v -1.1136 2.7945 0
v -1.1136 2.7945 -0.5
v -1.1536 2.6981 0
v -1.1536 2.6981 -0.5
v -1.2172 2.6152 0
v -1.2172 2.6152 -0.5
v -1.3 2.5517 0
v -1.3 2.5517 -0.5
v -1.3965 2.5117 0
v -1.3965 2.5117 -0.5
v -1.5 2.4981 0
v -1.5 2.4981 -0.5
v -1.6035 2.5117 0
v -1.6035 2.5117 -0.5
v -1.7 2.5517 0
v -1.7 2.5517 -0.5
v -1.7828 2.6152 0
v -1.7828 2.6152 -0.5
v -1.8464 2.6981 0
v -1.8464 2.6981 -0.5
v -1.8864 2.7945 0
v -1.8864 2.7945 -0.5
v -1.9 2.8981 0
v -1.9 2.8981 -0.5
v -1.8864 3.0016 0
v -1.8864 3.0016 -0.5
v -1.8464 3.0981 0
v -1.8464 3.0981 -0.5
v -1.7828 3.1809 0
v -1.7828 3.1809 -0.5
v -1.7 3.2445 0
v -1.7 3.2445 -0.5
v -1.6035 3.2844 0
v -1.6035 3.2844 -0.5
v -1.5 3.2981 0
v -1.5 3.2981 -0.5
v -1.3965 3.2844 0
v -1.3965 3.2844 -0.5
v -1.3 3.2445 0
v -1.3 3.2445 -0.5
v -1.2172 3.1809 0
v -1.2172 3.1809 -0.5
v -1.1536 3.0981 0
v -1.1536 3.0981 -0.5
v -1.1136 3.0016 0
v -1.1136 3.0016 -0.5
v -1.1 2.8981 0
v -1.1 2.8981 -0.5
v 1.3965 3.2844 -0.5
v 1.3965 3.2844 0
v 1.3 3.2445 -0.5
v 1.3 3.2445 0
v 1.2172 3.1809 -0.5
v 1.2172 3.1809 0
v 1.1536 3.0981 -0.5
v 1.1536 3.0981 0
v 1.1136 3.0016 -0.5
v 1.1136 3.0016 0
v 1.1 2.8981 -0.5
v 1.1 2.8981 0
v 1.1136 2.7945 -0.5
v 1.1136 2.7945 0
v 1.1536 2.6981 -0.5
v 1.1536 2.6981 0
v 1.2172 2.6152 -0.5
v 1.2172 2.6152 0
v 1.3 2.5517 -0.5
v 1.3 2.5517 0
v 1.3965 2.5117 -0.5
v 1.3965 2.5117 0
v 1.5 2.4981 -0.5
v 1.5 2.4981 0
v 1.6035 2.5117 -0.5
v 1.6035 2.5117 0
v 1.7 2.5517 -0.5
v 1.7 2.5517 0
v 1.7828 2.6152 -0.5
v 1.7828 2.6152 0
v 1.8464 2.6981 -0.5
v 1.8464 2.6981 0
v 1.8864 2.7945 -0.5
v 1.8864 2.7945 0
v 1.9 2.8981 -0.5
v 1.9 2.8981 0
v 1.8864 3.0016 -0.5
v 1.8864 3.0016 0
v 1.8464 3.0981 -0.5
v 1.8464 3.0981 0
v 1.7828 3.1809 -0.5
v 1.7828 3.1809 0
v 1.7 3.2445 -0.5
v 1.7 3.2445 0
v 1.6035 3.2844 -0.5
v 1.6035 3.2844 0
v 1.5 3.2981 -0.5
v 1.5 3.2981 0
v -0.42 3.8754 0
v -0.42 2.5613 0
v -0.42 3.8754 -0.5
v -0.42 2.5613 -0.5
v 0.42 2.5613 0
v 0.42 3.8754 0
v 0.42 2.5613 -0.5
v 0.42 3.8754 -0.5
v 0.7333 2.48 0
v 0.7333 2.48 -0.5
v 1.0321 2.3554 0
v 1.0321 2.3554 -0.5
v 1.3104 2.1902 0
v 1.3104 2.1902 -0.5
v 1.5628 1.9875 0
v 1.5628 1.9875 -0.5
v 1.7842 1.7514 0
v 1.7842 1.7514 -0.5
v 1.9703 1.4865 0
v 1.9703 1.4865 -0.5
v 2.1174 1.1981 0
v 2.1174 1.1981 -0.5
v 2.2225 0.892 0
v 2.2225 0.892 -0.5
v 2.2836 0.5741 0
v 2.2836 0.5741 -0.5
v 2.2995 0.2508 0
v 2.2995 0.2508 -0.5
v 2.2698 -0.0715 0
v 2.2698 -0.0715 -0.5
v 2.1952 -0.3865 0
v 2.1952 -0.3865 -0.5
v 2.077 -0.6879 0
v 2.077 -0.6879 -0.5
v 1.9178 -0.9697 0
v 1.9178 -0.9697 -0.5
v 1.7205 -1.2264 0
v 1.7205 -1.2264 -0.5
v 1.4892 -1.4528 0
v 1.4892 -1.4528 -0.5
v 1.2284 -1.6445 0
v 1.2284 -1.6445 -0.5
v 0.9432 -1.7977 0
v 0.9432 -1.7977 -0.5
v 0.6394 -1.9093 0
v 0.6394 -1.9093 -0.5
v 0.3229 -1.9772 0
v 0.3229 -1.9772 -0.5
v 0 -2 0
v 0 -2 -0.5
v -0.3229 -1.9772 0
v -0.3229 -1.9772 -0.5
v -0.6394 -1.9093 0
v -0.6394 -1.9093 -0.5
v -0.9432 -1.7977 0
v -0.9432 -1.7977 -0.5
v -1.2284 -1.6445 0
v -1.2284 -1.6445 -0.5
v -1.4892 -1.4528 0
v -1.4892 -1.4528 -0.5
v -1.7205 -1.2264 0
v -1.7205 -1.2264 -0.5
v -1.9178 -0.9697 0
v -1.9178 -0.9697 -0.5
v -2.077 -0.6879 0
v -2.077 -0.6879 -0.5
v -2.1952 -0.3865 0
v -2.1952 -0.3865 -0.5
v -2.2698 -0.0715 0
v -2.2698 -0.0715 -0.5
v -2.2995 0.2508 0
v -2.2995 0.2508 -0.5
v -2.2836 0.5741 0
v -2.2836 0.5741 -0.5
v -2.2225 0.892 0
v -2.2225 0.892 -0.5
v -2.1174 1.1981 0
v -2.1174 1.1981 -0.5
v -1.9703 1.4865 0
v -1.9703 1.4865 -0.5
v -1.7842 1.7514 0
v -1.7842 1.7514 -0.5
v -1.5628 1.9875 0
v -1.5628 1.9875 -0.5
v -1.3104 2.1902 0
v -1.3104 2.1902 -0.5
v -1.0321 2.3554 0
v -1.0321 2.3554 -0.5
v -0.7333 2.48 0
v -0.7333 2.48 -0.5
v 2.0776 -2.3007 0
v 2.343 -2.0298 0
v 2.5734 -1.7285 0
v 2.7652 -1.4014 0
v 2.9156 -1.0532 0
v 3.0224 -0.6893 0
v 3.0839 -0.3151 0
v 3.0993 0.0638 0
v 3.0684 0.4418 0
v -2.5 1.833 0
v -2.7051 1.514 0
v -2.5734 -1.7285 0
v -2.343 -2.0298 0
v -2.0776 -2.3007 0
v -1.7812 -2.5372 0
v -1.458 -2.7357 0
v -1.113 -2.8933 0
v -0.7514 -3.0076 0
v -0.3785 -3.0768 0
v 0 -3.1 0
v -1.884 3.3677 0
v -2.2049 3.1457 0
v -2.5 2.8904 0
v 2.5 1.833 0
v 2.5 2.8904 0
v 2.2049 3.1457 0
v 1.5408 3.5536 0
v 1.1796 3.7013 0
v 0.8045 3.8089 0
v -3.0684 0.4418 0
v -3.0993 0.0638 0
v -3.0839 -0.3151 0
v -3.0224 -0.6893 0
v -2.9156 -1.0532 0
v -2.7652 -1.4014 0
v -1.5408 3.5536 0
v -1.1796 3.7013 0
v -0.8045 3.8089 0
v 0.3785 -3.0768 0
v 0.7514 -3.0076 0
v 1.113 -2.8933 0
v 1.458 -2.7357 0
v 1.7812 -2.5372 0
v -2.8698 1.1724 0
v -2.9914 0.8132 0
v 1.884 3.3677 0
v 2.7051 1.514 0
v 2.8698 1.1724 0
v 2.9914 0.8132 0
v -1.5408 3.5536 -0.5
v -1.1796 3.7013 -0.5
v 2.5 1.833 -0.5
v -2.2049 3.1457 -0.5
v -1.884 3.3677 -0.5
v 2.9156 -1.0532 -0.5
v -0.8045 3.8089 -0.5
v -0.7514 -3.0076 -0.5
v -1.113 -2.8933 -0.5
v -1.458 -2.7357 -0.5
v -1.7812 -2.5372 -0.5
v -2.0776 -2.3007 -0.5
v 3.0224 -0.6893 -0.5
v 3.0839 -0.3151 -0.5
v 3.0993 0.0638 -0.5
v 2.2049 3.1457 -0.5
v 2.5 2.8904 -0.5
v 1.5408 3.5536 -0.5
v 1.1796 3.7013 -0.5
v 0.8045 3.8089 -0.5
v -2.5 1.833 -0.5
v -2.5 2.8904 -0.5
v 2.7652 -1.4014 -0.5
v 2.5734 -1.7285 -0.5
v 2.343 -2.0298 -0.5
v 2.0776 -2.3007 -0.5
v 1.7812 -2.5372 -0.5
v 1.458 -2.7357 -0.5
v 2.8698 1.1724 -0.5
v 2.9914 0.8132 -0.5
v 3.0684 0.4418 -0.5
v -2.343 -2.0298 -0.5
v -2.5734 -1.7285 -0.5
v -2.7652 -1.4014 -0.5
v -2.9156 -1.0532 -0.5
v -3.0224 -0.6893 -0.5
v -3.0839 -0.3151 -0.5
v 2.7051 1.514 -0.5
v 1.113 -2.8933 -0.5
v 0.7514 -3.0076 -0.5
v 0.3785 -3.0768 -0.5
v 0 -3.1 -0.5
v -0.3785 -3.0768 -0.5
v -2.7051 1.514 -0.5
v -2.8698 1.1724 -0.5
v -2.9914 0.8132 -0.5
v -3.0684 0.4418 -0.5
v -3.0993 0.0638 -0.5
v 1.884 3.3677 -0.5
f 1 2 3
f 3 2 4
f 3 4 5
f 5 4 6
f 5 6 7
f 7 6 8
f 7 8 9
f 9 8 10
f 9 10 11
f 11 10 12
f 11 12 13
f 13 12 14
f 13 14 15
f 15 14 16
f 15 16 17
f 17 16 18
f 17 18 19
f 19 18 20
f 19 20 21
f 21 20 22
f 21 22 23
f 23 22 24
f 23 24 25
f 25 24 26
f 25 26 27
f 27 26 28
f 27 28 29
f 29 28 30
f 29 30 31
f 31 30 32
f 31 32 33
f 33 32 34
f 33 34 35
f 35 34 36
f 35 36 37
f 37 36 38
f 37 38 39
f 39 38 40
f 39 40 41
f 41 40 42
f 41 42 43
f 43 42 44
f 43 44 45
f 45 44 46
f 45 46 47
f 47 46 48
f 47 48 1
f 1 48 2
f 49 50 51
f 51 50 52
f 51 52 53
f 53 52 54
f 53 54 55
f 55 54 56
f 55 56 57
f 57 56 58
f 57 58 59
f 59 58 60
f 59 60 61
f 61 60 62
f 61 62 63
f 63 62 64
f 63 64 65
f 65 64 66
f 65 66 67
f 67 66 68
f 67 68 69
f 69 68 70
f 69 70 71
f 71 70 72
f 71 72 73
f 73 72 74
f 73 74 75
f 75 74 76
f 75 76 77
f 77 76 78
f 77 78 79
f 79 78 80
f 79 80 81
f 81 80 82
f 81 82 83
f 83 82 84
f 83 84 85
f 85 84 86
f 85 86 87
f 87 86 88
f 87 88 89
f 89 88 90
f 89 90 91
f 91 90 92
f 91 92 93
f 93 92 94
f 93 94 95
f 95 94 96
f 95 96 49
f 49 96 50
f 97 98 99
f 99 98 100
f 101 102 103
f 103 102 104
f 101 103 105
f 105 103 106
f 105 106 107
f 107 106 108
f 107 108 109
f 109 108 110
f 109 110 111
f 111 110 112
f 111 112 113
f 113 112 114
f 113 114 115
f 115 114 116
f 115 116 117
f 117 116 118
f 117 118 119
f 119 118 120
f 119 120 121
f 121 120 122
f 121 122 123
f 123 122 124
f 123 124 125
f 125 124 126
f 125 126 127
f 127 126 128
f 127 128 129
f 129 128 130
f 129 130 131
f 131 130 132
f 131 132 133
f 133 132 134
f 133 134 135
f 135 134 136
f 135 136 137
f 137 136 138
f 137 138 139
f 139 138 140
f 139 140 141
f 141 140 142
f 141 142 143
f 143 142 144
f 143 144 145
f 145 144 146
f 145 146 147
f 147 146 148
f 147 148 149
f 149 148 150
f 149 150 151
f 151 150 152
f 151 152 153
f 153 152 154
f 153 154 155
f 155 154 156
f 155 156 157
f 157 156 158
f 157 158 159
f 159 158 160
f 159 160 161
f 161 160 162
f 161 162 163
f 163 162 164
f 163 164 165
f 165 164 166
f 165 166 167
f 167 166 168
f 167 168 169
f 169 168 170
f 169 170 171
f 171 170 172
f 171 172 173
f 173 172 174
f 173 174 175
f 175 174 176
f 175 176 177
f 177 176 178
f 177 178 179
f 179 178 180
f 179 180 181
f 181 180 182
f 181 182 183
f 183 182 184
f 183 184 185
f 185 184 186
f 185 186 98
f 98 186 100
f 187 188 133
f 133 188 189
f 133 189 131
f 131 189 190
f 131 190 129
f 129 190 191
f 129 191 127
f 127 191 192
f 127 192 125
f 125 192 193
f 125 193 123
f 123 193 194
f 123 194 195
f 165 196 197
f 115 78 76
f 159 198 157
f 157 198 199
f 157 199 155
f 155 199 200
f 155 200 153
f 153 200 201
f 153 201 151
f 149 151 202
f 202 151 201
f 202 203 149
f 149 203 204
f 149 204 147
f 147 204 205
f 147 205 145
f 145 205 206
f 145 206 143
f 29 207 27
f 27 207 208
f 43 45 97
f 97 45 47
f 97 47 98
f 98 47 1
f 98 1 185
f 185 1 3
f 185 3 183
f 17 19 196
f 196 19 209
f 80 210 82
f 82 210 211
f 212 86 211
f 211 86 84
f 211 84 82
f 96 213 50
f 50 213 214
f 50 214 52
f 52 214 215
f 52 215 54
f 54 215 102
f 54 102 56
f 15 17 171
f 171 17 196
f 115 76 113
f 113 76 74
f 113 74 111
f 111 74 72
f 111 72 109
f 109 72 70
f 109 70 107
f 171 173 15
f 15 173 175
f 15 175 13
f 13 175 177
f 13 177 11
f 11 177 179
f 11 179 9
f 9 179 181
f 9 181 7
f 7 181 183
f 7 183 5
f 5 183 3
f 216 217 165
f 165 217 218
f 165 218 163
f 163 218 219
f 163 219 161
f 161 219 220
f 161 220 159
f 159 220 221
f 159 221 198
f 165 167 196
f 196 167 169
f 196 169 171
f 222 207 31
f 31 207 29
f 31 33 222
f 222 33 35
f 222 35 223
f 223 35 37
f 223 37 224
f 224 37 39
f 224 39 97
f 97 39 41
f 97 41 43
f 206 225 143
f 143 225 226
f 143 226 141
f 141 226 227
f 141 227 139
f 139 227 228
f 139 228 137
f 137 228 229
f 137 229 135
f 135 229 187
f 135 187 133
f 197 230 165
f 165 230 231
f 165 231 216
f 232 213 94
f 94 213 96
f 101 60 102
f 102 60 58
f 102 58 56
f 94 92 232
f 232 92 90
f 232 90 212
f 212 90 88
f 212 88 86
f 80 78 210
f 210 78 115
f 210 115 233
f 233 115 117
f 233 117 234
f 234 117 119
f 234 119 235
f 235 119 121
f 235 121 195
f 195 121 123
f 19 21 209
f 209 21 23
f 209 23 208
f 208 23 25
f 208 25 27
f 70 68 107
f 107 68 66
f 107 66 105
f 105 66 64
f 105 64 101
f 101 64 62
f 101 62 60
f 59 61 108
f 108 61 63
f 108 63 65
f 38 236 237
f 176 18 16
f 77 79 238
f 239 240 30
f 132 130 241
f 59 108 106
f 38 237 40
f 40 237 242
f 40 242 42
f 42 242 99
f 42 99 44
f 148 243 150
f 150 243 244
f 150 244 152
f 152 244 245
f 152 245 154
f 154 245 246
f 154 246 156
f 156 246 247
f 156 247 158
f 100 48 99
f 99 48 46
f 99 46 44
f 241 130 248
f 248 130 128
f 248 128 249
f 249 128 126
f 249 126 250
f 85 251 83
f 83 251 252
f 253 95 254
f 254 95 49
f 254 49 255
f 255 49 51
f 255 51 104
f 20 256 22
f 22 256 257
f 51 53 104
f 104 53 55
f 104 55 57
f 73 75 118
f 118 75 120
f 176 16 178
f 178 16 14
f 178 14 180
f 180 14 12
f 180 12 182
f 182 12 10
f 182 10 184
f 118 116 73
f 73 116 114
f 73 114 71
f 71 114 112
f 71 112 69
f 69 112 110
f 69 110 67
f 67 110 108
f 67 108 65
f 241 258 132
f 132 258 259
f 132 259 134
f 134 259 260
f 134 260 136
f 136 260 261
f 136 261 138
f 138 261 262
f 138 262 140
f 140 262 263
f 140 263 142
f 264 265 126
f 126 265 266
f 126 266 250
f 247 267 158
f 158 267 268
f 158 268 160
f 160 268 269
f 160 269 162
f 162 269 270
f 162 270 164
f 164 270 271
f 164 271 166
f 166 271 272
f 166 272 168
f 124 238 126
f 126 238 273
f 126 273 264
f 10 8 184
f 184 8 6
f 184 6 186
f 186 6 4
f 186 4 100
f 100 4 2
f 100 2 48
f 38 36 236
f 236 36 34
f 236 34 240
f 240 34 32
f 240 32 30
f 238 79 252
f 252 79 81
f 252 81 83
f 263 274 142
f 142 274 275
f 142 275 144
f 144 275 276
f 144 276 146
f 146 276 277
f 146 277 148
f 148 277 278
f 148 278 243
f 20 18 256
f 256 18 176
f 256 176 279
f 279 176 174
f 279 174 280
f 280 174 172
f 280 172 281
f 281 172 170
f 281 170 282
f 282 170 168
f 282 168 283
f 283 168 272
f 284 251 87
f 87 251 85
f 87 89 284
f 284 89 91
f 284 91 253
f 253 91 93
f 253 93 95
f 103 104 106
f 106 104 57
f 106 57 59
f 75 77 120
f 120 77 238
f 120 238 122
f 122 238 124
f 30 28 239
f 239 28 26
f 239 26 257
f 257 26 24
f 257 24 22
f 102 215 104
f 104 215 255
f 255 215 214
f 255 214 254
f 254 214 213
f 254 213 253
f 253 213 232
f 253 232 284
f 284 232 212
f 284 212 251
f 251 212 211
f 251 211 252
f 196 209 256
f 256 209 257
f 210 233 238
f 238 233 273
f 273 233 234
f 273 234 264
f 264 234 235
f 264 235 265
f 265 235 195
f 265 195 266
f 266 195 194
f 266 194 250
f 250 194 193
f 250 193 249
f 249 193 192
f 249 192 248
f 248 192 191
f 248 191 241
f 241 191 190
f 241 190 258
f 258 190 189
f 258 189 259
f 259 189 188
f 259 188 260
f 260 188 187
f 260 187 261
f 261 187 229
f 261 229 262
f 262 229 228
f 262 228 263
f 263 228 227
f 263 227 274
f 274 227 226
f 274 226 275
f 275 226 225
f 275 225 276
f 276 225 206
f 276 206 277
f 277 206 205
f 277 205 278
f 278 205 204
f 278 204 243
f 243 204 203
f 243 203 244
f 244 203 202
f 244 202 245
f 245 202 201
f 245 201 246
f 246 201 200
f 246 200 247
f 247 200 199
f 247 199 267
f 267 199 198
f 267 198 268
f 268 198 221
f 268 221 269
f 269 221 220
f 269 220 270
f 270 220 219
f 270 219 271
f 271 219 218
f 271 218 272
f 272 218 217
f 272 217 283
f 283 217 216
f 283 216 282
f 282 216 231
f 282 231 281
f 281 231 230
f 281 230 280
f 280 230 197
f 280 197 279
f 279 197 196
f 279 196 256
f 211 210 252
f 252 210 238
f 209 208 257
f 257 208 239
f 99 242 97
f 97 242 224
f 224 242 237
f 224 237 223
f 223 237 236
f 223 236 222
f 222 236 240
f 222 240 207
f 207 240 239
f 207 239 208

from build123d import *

# Parameters (mm, degrees)
BOSS_EXTRUDE1_DEPTH            = 0.5
SKETCH2_R                      = 2.3
CUT_EXTRUDE1_DEPTH             = 1.5
CUT_EXTRUDE2_DEPTH             = 1.5
F_0_8_0_8_DIAMETER_HOLE1_D     = 0.8
F_0_8_0_8_DIAMETER_HOLE1_DEPTH = 0.5


with BuildPart() as part:
    # Sketch1 → Boss-Extrude1 (new body)
    with BuildSketch(Plane.XY):
        with BuildLine():
            Line((-2.5, 2.890366769), (-2.5, 1.833030278))
            ThreePointArc((-2.5, 1.833030278), (0, -3.1), (2.5, 1.833030278))
            Line((2.5, 1.833030278), (2.5, 2.890366769))
            ThreePointArc((2.5, 2.890366769), (0, 3.9), (-2.5, 2.890366769))
        make_face()
    extrude(amount=-BOSS_EXTRUDE1_DEPTH)

    # Sketch2 → Cut-Extrude1 (cut, through all)
    with BuildSketch(Plane.XY):
        with Locations((0, 0.3)):
            Circle(SKETCH2_R)
    extrude(amount=-CUT_EXTRUDE1_DEPTH, mode=Mode.SUBTRACT)

    # Sketch3 → Cut-Extrude2 (cut, through all)
    with BuildSketch(Plane.XY):
        with BuildLine():
            Line((-0.42, 3.87541606), (-0.42, 2.561327044))
            ThreePointArc((-0.42, 2.561327044), (0, 2.6), (0.42, 2.561327044))
            Line((0.42, 2.561327044), (0.42, 3.87541606))
            ThreePointArc((0.42, 3.87541606), (0, 3.9), (-0.42, 3.87541606))
        make_face()
    extrude(amount=-CUT_EXTRUDE2_DEPTH, mode=Mode.SUBTRACT)

    # Ø0.8 (0.8) Diameter Hole1
    with Locations(Plane.XY):
        with Locations((-1.5, 2.898076211), (1.5, 2.898076211)):
            Hole(F_0_8_0_8_DIAMETER_HOLE1_D / 2, depth=F_0_8_0_8_DIAMETER_HOLE1_DEPTH)


solid = part.part
